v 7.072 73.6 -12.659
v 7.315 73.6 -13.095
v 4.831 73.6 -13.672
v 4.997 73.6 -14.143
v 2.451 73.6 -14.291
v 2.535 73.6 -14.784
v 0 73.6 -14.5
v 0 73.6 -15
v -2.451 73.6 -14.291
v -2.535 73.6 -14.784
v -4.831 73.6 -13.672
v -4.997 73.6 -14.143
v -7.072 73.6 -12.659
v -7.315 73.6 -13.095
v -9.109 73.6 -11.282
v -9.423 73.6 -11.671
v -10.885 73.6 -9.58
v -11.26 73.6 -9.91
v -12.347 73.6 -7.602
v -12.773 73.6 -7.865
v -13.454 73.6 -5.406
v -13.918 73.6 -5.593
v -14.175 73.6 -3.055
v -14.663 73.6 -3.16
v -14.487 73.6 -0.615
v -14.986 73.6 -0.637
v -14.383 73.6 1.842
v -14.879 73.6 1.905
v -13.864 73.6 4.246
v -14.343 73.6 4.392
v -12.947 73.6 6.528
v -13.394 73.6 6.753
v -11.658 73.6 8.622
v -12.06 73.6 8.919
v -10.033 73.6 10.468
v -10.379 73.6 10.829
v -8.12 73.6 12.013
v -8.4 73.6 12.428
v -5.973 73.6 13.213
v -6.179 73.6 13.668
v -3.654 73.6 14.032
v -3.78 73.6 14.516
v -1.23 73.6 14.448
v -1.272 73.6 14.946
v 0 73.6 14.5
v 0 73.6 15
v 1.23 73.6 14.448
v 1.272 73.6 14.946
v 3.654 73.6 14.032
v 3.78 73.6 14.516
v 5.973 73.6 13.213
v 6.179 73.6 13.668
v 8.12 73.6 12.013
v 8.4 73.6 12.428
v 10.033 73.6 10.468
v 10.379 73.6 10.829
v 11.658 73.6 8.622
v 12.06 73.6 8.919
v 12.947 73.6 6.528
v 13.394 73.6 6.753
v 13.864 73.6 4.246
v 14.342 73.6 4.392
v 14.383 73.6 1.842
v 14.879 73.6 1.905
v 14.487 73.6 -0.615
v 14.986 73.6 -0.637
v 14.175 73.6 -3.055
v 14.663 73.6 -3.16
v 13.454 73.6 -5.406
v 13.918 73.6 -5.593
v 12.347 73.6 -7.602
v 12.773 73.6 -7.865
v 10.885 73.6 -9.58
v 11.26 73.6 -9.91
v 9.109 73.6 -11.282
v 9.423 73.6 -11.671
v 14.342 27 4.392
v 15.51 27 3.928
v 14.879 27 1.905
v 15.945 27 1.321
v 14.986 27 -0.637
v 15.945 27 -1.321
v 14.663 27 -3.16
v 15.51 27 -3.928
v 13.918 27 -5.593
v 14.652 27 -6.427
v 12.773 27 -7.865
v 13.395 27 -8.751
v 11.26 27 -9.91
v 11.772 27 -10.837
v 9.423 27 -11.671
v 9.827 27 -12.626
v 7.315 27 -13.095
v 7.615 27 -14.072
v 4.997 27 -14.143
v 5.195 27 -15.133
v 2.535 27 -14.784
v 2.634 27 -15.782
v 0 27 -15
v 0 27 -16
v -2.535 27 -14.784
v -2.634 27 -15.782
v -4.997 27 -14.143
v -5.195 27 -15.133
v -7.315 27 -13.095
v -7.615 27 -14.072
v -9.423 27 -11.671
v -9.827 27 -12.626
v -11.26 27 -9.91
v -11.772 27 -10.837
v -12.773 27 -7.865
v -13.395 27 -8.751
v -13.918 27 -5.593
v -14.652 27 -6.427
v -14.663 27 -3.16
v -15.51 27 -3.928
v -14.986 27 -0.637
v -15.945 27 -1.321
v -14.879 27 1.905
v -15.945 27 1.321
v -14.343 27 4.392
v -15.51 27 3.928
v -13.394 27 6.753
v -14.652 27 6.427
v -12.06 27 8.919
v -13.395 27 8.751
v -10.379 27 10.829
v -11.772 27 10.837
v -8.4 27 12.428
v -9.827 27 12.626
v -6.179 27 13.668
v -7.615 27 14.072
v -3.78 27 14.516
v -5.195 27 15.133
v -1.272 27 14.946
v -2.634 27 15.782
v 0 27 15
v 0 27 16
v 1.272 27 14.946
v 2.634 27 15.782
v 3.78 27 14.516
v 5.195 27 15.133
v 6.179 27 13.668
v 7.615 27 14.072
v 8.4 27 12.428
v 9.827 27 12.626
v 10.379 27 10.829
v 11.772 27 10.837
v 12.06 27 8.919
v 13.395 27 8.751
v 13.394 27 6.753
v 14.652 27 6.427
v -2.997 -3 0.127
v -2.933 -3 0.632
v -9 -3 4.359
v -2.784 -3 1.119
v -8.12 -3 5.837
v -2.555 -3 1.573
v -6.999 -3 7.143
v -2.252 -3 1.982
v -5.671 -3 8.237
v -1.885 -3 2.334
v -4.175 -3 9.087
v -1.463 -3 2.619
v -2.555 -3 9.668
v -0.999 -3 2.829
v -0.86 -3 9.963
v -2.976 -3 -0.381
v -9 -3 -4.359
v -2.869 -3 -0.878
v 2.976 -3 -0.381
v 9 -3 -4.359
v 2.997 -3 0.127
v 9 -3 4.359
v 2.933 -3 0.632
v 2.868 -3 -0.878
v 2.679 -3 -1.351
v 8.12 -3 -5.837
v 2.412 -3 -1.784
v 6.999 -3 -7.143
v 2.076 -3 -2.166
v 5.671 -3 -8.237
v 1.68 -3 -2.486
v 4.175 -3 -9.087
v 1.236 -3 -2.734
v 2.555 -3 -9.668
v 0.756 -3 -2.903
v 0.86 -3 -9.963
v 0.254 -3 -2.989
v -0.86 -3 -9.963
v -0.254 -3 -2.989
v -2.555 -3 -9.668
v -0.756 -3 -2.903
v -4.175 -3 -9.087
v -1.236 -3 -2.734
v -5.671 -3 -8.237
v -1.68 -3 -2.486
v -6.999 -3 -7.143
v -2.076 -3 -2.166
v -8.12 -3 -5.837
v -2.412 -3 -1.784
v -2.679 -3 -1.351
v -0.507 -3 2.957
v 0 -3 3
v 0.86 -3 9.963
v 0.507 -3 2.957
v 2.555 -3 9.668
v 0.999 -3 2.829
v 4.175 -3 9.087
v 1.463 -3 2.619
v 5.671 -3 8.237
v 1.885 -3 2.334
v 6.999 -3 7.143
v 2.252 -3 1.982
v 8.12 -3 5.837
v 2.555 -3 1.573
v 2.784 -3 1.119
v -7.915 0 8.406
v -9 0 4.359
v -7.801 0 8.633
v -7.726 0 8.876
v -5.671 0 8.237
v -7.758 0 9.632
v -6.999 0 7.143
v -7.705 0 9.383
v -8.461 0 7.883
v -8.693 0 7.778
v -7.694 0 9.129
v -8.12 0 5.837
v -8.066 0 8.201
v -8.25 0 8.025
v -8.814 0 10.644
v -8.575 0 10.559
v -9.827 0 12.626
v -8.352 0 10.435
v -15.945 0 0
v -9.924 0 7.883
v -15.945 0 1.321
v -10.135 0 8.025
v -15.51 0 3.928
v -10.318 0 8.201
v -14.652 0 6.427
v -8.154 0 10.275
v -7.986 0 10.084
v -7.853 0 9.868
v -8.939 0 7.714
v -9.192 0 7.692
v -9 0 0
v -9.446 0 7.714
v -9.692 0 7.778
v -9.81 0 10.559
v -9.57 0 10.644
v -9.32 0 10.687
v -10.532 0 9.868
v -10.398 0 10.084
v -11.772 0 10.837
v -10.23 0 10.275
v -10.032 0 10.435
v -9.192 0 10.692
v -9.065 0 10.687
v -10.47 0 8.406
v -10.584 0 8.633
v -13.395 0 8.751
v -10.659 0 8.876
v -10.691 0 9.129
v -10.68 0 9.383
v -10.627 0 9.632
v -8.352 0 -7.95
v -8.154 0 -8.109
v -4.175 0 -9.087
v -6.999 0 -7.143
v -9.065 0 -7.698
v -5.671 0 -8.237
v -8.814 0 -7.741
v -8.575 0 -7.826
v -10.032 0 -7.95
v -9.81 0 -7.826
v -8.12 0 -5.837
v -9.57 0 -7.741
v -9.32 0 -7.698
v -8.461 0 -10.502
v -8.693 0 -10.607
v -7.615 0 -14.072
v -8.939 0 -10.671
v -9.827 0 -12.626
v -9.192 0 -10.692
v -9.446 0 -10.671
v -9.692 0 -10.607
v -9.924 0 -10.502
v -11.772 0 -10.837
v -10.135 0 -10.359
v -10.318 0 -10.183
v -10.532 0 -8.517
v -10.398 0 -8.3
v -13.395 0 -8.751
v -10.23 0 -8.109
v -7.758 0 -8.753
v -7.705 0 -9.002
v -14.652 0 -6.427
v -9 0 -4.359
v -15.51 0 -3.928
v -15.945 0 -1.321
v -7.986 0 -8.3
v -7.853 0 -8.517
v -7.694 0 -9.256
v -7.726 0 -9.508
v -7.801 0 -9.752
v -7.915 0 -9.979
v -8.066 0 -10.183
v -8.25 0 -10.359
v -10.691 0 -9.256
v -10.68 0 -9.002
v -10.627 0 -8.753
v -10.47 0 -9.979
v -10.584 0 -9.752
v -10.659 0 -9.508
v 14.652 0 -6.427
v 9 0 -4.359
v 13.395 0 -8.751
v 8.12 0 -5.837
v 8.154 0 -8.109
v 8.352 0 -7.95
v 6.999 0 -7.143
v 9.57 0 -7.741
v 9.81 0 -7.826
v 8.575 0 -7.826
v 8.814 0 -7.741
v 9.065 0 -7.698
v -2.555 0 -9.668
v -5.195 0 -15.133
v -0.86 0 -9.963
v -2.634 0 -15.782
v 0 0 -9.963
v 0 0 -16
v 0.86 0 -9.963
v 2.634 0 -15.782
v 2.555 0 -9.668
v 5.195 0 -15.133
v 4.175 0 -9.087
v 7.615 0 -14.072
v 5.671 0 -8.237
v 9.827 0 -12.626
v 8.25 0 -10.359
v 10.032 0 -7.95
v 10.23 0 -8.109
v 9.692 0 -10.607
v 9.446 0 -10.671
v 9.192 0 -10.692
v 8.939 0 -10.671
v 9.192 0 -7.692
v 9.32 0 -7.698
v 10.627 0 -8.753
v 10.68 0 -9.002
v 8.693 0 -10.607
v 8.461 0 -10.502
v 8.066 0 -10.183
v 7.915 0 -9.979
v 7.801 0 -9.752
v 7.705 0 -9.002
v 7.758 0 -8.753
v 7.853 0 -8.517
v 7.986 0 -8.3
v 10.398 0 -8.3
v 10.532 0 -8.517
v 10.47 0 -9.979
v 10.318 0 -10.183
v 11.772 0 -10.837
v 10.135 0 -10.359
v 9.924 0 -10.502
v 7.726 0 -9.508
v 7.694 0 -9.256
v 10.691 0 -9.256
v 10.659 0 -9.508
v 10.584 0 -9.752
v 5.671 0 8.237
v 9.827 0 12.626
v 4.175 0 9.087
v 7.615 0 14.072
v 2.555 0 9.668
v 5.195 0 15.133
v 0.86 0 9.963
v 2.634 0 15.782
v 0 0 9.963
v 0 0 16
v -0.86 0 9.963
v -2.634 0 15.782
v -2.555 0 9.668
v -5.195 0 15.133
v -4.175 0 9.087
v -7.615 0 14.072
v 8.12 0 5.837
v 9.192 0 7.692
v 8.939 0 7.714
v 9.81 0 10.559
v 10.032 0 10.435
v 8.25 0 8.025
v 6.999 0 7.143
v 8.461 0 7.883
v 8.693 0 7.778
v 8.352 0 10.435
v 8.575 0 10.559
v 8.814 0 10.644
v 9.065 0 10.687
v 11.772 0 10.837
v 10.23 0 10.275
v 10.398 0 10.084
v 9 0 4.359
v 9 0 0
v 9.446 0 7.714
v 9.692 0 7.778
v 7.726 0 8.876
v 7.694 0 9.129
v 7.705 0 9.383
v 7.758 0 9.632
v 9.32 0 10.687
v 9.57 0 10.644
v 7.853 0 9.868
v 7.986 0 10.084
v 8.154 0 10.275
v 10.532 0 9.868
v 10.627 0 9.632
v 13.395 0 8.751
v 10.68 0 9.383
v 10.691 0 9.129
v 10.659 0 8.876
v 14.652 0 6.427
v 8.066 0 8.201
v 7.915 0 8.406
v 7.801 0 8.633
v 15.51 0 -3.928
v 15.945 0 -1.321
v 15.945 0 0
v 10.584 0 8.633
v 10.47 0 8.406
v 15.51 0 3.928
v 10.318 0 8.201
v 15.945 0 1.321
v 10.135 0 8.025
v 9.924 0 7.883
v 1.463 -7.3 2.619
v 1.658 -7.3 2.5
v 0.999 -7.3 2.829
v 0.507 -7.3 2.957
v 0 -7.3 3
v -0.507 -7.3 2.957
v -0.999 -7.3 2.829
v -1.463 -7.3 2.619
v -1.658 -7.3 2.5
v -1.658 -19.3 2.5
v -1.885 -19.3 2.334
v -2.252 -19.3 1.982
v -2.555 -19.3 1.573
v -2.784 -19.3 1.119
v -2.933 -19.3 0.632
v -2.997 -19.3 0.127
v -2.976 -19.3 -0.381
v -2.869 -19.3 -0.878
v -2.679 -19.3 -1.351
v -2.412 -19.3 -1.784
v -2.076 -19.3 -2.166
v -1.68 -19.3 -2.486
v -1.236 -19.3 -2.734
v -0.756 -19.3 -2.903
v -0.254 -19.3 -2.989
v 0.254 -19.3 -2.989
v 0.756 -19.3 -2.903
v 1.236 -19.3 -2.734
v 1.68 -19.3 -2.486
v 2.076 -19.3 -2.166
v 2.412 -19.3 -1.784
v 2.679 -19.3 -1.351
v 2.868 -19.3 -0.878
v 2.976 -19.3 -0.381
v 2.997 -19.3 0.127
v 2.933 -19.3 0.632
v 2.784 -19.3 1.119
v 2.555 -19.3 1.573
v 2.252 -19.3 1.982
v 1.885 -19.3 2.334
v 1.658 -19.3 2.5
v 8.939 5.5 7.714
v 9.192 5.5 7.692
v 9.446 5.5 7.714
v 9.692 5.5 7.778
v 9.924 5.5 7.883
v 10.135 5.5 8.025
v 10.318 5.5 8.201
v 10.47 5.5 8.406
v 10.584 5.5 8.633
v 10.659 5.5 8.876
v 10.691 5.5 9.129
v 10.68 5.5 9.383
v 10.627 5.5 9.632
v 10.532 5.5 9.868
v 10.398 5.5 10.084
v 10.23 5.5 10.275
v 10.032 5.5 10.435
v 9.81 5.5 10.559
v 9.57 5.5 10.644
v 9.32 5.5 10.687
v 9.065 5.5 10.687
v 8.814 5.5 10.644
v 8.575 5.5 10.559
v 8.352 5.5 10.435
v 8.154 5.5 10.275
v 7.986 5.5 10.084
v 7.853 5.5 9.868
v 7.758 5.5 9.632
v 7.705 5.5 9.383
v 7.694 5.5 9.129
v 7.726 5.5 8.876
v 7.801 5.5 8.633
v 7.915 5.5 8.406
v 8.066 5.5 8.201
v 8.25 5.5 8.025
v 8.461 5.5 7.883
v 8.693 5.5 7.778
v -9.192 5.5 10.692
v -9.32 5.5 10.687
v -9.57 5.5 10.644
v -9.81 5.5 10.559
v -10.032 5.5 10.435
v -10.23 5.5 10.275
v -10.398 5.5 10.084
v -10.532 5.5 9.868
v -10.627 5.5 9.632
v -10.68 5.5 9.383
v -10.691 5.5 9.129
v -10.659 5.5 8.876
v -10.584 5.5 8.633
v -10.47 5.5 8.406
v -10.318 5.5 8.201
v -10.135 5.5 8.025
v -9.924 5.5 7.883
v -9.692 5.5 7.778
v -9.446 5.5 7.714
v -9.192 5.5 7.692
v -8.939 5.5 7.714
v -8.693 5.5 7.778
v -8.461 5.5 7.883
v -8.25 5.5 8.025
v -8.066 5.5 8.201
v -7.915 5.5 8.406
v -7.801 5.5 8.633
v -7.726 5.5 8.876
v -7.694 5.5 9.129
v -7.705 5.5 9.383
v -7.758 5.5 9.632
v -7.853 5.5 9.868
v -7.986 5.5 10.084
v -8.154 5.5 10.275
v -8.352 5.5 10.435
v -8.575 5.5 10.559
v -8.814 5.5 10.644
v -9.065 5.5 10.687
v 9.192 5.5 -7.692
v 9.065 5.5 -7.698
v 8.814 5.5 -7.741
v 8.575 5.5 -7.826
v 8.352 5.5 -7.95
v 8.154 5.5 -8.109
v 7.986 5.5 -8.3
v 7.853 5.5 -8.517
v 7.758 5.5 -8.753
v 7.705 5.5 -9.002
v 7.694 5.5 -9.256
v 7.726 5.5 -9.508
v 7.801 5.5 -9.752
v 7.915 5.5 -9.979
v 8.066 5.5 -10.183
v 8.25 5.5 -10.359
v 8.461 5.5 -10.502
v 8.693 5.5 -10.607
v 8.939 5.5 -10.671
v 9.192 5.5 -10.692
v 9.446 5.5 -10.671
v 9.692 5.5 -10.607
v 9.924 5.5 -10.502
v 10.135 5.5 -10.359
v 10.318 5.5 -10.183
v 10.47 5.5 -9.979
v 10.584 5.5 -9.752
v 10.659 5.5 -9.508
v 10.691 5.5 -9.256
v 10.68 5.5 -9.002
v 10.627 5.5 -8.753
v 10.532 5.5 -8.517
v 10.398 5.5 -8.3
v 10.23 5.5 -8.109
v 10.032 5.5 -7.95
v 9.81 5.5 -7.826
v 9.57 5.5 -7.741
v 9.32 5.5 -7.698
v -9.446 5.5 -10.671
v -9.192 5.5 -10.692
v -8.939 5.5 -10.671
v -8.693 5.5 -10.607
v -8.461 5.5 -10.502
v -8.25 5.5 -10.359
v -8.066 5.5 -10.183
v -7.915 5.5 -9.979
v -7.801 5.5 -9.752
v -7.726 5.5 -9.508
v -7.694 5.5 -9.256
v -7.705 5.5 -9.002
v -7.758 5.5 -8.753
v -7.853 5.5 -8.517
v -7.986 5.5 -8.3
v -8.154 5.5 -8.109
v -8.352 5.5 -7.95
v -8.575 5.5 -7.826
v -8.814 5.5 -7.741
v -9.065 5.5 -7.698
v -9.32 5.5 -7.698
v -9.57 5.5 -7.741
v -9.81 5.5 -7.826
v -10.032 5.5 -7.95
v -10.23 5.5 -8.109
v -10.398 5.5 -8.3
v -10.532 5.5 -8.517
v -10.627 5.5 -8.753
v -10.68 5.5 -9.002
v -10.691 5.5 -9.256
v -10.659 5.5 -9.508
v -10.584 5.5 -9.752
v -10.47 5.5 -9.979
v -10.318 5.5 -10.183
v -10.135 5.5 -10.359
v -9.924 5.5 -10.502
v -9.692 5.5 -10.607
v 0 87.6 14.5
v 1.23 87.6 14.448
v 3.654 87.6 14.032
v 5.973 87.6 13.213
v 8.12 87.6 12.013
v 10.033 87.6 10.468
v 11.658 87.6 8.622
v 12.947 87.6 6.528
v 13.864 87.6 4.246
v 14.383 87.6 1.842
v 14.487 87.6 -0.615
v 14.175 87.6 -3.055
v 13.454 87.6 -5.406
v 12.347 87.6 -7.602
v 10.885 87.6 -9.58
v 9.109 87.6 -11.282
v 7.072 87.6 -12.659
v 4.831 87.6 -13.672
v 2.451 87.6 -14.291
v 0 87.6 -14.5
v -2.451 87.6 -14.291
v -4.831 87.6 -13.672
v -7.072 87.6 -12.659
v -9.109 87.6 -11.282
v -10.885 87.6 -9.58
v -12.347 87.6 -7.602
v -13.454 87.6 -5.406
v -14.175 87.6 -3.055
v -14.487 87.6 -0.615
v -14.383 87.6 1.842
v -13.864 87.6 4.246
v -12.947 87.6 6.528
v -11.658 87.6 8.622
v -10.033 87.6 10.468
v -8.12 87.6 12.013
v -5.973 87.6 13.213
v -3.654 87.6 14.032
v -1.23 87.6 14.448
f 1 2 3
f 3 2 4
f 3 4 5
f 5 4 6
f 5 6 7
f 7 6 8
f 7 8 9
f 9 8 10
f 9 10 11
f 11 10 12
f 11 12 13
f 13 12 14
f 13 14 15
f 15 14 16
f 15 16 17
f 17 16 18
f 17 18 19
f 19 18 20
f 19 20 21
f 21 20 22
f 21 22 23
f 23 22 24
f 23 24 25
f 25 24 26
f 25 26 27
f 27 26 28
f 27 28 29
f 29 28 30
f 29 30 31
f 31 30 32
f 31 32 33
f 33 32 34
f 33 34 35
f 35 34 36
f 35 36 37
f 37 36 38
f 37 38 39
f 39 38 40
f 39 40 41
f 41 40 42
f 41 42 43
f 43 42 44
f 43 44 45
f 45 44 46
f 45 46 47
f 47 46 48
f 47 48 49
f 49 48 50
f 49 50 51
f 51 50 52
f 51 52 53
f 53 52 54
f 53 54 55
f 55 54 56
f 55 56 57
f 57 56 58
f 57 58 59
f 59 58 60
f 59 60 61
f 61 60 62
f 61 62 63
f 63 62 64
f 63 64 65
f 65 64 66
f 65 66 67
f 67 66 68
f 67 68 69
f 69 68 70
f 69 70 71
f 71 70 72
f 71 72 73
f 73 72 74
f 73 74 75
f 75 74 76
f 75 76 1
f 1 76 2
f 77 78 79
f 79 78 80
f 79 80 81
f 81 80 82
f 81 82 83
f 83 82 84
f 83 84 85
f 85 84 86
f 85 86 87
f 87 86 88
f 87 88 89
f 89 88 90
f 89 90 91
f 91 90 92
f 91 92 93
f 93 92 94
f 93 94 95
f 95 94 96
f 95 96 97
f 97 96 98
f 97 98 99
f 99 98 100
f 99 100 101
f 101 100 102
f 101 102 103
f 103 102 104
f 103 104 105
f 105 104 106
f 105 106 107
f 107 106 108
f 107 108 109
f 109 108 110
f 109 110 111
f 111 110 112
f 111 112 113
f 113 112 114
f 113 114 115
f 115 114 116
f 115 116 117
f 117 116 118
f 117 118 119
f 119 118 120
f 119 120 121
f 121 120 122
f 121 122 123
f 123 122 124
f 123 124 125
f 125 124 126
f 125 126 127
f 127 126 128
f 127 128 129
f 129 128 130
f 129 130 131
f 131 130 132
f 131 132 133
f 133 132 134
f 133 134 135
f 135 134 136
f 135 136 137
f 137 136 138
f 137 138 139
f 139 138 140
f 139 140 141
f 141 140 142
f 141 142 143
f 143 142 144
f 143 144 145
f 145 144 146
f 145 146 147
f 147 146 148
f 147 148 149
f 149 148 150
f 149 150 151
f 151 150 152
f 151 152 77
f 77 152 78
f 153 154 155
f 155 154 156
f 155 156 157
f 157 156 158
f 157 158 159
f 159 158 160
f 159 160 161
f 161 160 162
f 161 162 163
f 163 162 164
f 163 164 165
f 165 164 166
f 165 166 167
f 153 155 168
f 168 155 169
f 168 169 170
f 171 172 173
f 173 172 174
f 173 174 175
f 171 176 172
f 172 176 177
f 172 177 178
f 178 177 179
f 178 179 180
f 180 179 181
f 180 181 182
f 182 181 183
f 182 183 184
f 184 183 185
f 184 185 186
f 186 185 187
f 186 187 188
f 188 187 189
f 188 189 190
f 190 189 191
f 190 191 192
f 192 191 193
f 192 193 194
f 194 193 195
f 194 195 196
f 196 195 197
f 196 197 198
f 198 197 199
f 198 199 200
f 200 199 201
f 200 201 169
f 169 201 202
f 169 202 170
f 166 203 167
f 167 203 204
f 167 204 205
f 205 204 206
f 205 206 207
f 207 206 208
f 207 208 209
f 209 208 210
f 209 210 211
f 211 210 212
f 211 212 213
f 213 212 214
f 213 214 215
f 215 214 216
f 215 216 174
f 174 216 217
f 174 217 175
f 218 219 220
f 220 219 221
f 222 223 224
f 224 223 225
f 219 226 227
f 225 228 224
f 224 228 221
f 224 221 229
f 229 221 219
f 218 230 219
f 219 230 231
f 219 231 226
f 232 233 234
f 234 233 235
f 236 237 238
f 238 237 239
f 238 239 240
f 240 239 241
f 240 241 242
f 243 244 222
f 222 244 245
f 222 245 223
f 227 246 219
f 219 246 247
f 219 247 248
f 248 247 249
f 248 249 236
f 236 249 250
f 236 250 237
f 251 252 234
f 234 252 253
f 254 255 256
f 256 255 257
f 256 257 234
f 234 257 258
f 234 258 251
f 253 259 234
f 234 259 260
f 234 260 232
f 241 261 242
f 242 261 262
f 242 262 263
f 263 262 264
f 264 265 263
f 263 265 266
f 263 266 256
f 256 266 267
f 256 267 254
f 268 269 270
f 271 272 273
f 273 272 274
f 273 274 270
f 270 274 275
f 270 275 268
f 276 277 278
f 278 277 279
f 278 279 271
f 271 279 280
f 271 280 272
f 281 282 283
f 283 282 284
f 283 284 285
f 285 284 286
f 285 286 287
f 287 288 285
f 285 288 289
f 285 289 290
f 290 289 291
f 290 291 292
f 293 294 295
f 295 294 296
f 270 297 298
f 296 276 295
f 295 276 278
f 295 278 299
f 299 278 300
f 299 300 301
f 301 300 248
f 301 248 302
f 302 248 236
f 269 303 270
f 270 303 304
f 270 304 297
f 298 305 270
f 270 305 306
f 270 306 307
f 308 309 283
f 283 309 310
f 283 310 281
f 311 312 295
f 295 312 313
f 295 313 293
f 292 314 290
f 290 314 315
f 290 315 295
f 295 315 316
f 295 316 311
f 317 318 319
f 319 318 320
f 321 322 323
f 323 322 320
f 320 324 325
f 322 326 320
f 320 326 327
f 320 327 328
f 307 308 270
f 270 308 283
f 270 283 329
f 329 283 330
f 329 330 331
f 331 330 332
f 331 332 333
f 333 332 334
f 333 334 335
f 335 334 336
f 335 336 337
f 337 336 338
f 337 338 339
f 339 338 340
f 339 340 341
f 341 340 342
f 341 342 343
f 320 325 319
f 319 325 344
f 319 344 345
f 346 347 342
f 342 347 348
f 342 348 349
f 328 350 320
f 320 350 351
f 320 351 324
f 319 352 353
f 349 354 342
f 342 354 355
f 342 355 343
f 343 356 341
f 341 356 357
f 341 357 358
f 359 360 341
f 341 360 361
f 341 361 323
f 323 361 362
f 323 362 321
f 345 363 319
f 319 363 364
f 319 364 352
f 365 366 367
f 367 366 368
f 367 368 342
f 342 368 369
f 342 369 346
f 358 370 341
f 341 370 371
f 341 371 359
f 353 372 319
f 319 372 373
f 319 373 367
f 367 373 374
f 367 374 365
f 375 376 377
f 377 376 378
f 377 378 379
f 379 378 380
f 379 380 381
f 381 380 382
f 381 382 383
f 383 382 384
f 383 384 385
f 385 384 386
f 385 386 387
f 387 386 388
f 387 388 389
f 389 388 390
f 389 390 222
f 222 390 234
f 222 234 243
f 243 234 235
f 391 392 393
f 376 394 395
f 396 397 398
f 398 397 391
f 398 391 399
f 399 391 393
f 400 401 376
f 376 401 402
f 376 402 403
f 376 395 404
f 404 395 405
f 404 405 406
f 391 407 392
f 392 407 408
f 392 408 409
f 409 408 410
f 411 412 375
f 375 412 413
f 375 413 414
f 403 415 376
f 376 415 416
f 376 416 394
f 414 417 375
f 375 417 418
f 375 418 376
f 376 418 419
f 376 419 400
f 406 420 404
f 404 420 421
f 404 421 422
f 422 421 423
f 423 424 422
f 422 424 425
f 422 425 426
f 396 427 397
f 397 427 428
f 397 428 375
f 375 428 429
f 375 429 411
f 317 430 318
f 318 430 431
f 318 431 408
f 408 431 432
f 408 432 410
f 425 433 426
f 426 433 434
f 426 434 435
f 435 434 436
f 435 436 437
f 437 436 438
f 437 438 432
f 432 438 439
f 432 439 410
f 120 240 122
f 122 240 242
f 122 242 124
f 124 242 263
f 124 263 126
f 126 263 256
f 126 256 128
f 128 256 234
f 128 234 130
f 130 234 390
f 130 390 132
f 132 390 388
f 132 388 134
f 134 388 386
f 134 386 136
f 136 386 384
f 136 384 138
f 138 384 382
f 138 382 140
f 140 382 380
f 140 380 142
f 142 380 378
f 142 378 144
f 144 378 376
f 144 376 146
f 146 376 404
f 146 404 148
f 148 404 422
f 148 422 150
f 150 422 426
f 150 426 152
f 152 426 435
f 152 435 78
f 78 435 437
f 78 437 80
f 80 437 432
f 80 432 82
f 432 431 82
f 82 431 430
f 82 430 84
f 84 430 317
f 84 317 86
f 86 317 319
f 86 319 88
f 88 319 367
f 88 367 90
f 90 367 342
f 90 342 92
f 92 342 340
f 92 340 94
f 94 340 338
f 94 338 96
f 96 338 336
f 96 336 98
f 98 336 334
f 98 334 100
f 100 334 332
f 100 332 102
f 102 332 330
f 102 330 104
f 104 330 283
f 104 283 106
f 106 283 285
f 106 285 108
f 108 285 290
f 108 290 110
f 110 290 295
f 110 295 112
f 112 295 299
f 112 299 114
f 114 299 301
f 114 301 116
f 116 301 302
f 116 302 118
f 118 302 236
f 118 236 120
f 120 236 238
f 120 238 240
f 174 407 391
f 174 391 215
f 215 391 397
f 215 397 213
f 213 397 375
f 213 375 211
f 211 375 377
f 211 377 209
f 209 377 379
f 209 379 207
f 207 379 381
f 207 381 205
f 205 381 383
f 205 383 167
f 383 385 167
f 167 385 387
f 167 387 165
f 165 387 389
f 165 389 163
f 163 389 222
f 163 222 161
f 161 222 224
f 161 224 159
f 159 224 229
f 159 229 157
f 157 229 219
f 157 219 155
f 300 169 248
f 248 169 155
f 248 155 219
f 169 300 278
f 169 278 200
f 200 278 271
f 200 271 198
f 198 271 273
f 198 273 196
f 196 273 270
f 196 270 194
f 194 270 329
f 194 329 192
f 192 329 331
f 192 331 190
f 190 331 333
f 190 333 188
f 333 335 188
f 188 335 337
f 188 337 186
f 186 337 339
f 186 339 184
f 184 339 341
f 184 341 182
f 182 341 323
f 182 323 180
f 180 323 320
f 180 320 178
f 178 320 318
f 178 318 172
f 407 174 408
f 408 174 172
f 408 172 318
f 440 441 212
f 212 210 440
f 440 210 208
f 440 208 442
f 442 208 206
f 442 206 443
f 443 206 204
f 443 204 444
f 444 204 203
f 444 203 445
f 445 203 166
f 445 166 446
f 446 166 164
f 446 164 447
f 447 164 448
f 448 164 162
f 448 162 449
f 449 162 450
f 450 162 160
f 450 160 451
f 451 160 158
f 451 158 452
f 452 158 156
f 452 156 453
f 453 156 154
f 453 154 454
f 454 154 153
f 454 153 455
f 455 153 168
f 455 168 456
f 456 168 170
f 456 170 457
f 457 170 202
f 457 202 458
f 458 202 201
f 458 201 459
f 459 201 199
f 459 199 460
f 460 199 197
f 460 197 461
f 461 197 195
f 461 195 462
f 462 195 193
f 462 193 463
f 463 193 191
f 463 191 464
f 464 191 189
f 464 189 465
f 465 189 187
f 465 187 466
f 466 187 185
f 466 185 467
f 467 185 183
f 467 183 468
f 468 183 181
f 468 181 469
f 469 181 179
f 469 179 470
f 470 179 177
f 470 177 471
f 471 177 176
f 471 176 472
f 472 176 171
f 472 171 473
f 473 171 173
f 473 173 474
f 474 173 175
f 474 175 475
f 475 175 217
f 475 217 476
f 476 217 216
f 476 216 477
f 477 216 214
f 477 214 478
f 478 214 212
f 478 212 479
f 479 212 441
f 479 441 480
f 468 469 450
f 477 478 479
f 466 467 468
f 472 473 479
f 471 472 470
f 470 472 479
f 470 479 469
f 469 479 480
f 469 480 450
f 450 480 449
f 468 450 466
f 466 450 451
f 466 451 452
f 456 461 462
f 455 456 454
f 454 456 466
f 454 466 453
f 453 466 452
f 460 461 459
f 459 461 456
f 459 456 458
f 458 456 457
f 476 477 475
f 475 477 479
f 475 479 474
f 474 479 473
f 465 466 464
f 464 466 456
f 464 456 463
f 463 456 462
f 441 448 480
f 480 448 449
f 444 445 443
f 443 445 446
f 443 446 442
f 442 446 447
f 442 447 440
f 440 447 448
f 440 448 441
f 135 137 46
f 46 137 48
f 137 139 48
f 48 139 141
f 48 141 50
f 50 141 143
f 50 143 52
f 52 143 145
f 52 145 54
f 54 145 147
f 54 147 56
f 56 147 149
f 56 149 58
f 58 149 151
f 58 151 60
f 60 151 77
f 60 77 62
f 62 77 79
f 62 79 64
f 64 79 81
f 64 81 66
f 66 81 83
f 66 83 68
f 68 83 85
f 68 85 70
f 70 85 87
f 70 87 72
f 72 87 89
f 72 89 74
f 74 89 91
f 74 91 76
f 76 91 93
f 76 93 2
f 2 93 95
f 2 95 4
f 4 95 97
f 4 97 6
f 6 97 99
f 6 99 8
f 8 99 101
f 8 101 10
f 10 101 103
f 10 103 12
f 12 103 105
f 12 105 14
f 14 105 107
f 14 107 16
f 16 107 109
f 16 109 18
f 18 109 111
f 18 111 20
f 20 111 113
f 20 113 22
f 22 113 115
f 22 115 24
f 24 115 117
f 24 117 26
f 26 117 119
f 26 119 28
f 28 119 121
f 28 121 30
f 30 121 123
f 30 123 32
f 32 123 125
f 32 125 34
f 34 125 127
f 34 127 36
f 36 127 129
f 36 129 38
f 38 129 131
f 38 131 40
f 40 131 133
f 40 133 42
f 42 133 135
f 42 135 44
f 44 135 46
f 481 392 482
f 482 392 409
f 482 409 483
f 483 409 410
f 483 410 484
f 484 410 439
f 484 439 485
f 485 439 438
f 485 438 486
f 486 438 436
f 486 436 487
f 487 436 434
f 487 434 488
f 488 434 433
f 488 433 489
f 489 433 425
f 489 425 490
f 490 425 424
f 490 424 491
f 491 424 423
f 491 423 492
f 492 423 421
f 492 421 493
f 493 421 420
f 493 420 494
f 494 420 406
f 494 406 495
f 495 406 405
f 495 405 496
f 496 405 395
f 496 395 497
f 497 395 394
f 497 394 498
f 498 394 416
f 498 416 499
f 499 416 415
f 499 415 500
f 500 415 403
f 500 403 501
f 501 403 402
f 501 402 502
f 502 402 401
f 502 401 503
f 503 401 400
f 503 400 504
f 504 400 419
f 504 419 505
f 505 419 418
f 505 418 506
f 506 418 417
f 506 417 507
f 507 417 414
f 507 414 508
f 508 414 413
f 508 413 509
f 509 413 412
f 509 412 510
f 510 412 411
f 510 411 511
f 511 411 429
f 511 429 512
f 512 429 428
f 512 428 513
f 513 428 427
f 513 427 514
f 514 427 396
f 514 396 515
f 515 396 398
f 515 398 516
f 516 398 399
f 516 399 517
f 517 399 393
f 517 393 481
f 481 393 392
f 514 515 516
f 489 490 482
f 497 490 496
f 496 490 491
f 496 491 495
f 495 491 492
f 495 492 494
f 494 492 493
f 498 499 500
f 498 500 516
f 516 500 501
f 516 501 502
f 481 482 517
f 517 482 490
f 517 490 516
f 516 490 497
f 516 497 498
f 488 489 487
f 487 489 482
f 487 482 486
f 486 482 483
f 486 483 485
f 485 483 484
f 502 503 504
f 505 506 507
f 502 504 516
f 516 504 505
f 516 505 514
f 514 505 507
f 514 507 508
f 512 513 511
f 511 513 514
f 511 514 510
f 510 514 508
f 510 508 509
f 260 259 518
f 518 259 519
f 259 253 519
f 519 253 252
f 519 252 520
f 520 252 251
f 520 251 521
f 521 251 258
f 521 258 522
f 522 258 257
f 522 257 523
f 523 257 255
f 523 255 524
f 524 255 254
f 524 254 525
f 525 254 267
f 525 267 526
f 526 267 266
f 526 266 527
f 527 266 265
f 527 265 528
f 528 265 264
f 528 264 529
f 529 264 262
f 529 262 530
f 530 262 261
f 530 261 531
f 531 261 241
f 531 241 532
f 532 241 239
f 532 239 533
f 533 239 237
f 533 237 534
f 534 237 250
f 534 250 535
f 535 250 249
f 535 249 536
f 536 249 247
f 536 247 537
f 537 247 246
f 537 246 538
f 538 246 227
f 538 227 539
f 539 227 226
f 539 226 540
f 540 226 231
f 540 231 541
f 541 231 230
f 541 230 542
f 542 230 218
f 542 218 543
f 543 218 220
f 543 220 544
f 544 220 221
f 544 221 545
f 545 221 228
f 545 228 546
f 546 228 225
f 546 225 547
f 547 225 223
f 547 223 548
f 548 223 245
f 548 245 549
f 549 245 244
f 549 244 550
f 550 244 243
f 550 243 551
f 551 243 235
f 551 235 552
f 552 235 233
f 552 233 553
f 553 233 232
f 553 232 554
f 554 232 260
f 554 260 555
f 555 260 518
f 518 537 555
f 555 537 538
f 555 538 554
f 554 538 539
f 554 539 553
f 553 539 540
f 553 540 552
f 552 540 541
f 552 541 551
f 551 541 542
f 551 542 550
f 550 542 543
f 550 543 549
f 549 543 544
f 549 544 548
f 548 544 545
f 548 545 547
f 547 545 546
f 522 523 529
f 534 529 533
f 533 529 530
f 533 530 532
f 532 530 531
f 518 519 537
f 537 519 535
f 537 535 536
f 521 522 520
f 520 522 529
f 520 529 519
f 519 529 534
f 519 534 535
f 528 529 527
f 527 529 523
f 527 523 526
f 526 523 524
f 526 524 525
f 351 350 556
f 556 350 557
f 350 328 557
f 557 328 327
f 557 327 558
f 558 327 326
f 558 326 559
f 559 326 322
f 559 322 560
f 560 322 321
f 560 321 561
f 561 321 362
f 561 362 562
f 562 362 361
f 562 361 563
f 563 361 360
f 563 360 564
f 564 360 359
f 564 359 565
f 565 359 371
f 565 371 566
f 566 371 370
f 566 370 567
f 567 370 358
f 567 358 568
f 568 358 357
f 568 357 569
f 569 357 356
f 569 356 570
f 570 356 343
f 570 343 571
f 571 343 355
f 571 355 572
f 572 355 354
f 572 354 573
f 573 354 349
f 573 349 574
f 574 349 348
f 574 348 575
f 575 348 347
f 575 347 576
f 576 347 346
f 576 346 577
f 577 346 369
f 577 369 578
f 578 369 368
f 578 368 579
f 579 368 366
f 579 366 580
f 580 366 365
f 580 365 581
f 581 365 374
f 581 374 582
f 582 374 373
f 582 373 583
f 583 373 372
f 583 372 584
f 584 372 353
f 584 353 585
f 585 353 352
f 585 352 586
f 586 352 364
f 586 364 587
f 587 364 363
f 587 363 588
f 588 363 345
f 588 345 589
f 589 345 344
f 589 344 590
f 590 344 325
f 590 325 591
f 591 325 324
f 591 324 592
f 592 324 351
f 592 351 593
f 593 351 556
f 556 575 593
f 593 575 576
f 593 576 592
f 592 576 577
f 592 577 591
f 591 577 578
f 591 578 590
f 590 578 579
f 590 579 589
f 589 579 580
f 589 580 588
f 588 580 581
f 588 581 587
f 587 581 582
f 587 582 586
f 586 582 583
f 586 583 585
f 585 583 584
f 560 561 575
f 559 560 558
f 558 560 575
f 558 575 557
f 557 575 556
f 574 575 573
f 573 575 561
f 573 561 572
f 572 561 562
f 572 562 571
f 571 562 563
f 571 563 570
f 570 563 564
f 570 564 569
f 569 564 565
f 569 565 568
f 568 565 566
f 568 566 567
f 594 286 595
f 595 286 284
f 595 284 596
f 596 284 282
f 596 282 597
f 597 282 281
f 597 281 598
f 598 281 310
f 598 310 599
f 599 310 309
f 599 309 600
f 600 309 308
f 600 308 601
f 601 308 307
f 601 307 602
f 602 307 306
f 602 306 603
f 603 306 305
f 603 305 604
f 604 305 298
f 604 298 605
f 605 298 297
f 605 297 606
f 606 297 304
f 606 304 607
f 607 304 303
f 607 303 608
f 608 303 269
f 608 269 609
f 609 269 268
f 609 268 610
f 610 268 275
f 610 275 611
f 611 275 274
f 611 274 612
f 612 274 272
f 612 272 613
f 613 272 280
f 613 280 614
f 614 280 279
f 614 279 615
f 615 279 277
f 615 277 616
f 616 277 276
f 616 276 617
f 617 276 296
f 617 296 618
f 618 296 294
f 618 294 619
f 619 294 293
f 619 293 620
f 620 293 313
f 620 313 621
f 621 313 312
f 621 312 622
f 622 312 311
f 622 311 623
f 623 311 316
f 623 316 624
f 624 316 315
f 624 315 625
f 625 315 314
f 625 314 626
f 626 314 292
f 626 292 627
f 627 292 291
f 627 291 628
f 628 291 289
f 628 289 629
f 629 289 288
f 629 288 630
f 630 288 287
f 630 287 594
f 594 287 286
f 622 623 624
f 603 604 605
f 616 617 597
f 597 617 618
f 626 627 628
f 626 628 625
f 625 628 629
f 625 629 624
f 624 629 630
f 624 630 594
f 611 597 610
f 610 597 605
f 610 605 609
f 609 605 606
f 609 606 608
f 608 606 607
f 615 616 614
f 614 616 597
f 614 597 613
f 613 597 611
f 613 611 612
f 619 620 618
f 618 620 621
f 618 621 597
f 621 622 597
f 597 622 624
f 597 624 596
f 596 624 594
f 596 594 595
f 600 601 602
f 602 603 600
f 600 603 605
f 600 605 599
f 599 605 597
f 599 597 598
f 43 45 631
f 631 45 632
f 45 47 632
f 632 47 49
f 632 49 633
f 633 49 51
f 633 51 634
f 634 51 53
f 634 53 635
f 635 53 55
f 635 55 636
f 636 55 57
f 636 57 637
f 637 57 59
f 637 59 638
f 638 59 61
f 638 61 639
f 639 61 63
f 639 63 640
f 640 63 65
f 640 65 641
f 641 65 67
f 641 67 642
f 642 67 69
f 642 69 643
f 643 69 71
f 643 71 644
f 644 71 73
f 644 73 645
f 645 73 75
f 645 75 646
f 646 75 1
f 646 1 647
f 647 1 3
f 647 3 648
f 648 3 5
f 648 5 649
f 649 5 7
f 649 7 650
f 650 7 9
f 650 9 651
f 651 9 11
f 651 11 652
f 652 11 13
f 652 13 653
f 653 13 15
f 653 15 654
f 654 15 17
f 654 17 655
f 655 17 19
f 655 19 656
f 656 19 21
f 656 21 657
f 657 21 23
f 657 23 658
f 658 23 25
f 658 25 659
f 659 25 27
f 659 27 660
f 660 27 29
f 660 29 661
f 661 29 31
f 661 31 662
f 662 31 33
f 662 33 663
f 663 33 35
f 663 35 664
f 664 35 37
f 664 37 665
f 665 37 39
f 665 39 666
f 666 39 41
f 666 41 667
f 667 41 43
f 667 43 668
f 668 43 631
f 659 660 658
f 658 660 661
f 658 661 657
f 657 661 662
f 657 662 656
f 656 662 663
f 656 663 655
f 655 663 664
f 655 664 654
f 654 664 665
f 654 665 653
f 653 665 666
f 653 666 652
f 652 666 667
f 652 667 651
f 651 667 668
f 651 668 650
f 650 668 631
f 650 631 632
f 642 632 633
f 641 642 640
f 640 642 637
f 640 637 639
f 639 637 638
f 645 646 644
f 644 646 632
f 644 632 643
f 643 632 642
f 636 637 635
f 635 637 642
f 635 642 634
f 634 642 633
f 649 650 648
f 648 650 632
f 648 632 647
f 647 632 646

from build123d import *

# Parameters (mm, degrees)
ESQUISSE1_R             = 16
EXTRUSION1_DEPTH        = 27
EXTRUSION2_DEPTH        = 3
ESQUISSE3_R             = 3
EXTRUSION3_DEPTH        = 16.3
ENL_V_MAT_EXTRU_1_DEPTH = 12
ESQUISSE5_R             = 15
EXTRUSION4_DEPTH        = 46.6
ESQUISSE6_R             = 1.5
ENL_V_MAT_EXTRU_2_DEPTH = 5.5
ESQUISSE7_R             = 14.5
EXTRUSION5_DEPTH        = 14


with BuildPart() as part:
    # Esquisse1 → Extrusion1 (new body)
    with BuildSketch(Plane(origin=(0, 0, 0), x_dir=(1, 0, 0), z_dir=(0, 1, 0))):
        Circle(ESQUISSE1_R)
    extrude(amount=EXTRUSION1_DEPTH)

    # Esquisse2 → Extrusion2 (add)
    with BuildSketch(Plane.XZ):
        with BuildLine():
            Line((-9, 4.358898944), (-9, -4.358898944))
            ThreePointArc((-9, -4.358898944), (0, -10), (9, -4.358898944))
            Line((9, -4.358898944), (9, 4.358898944))
            ThreePointArc((9, 4.358898944), (0, 10), (-9, 4.358898944))
        make_face()
    extrude(amount=EXTRUSION2_DEPTH)

    # Esquisse3 → Extrusion3 (add)
    with BuildSketch(Plane.XZ.offset(3)):
        Circle(ESQUISSE3_R)
    extrude(amount=EXTRUSION3_DEPTH)

    # Esquisse4 → Enlèv. mat.-Extru.1 (cut)
    with BuildSketch(Plane.XZ.offset(19.3)):
        with BuildLine():
            Line((-1.658312395, 2.5), (1.658312395, 2.5))
            ThreePointArc((1.658312395, 2.5), (0, 3), (-1.658312395, 2.5))
        make_face()
    extrude(amount=-ENL_V_MAT_EXTRU_1_DEPTH, mode=Mode.SUBTRACT)

    # Esquisse5 → Extrusion4 (add)
    with BuildSketch(Plane(origin=(0, 27, 0), x_dir=(-1, 0, 0), z_dir=(0, 1, 0))):
        Circle(ESQUISSE5_R)
    extrude(amount=EXTRUSION4_DEPTH)

    # Esquisse6 → Enlèv. mat.-Extru.2 (cut)
    with BuildSketch(Plane.XZ):
        with Locations((9.192388155, 9.192388155)):
            Circle(ESQUISSE6_R)
        with Locations((-9.192388155, 9.192388155)):
            Circle(ESQUISSE6_R)
        with Locations((9.192388155, -9.192388155)):
            Circle(ESQUISSE6_R)
        with Locations((-9.192388155, -9.192388155)):
            Circle(ESQUISSE6_R)
    extrude(amount=-ENL_V_MAT_EXTRU_2_DEPTH, mode=Mode.SUBTRACT)

    # Esquisse7 → Extrusion5 (add)
    with BuildSketch(Plane(origin=(0, 73.6, 0), x_dir=(-1, 0, 0), z_dir=(0, 1, 0))):
        Circle(ESQUISSE7_R)
    extrude(amount=EXTRUSION5_DEPTH)


solid = part.part
